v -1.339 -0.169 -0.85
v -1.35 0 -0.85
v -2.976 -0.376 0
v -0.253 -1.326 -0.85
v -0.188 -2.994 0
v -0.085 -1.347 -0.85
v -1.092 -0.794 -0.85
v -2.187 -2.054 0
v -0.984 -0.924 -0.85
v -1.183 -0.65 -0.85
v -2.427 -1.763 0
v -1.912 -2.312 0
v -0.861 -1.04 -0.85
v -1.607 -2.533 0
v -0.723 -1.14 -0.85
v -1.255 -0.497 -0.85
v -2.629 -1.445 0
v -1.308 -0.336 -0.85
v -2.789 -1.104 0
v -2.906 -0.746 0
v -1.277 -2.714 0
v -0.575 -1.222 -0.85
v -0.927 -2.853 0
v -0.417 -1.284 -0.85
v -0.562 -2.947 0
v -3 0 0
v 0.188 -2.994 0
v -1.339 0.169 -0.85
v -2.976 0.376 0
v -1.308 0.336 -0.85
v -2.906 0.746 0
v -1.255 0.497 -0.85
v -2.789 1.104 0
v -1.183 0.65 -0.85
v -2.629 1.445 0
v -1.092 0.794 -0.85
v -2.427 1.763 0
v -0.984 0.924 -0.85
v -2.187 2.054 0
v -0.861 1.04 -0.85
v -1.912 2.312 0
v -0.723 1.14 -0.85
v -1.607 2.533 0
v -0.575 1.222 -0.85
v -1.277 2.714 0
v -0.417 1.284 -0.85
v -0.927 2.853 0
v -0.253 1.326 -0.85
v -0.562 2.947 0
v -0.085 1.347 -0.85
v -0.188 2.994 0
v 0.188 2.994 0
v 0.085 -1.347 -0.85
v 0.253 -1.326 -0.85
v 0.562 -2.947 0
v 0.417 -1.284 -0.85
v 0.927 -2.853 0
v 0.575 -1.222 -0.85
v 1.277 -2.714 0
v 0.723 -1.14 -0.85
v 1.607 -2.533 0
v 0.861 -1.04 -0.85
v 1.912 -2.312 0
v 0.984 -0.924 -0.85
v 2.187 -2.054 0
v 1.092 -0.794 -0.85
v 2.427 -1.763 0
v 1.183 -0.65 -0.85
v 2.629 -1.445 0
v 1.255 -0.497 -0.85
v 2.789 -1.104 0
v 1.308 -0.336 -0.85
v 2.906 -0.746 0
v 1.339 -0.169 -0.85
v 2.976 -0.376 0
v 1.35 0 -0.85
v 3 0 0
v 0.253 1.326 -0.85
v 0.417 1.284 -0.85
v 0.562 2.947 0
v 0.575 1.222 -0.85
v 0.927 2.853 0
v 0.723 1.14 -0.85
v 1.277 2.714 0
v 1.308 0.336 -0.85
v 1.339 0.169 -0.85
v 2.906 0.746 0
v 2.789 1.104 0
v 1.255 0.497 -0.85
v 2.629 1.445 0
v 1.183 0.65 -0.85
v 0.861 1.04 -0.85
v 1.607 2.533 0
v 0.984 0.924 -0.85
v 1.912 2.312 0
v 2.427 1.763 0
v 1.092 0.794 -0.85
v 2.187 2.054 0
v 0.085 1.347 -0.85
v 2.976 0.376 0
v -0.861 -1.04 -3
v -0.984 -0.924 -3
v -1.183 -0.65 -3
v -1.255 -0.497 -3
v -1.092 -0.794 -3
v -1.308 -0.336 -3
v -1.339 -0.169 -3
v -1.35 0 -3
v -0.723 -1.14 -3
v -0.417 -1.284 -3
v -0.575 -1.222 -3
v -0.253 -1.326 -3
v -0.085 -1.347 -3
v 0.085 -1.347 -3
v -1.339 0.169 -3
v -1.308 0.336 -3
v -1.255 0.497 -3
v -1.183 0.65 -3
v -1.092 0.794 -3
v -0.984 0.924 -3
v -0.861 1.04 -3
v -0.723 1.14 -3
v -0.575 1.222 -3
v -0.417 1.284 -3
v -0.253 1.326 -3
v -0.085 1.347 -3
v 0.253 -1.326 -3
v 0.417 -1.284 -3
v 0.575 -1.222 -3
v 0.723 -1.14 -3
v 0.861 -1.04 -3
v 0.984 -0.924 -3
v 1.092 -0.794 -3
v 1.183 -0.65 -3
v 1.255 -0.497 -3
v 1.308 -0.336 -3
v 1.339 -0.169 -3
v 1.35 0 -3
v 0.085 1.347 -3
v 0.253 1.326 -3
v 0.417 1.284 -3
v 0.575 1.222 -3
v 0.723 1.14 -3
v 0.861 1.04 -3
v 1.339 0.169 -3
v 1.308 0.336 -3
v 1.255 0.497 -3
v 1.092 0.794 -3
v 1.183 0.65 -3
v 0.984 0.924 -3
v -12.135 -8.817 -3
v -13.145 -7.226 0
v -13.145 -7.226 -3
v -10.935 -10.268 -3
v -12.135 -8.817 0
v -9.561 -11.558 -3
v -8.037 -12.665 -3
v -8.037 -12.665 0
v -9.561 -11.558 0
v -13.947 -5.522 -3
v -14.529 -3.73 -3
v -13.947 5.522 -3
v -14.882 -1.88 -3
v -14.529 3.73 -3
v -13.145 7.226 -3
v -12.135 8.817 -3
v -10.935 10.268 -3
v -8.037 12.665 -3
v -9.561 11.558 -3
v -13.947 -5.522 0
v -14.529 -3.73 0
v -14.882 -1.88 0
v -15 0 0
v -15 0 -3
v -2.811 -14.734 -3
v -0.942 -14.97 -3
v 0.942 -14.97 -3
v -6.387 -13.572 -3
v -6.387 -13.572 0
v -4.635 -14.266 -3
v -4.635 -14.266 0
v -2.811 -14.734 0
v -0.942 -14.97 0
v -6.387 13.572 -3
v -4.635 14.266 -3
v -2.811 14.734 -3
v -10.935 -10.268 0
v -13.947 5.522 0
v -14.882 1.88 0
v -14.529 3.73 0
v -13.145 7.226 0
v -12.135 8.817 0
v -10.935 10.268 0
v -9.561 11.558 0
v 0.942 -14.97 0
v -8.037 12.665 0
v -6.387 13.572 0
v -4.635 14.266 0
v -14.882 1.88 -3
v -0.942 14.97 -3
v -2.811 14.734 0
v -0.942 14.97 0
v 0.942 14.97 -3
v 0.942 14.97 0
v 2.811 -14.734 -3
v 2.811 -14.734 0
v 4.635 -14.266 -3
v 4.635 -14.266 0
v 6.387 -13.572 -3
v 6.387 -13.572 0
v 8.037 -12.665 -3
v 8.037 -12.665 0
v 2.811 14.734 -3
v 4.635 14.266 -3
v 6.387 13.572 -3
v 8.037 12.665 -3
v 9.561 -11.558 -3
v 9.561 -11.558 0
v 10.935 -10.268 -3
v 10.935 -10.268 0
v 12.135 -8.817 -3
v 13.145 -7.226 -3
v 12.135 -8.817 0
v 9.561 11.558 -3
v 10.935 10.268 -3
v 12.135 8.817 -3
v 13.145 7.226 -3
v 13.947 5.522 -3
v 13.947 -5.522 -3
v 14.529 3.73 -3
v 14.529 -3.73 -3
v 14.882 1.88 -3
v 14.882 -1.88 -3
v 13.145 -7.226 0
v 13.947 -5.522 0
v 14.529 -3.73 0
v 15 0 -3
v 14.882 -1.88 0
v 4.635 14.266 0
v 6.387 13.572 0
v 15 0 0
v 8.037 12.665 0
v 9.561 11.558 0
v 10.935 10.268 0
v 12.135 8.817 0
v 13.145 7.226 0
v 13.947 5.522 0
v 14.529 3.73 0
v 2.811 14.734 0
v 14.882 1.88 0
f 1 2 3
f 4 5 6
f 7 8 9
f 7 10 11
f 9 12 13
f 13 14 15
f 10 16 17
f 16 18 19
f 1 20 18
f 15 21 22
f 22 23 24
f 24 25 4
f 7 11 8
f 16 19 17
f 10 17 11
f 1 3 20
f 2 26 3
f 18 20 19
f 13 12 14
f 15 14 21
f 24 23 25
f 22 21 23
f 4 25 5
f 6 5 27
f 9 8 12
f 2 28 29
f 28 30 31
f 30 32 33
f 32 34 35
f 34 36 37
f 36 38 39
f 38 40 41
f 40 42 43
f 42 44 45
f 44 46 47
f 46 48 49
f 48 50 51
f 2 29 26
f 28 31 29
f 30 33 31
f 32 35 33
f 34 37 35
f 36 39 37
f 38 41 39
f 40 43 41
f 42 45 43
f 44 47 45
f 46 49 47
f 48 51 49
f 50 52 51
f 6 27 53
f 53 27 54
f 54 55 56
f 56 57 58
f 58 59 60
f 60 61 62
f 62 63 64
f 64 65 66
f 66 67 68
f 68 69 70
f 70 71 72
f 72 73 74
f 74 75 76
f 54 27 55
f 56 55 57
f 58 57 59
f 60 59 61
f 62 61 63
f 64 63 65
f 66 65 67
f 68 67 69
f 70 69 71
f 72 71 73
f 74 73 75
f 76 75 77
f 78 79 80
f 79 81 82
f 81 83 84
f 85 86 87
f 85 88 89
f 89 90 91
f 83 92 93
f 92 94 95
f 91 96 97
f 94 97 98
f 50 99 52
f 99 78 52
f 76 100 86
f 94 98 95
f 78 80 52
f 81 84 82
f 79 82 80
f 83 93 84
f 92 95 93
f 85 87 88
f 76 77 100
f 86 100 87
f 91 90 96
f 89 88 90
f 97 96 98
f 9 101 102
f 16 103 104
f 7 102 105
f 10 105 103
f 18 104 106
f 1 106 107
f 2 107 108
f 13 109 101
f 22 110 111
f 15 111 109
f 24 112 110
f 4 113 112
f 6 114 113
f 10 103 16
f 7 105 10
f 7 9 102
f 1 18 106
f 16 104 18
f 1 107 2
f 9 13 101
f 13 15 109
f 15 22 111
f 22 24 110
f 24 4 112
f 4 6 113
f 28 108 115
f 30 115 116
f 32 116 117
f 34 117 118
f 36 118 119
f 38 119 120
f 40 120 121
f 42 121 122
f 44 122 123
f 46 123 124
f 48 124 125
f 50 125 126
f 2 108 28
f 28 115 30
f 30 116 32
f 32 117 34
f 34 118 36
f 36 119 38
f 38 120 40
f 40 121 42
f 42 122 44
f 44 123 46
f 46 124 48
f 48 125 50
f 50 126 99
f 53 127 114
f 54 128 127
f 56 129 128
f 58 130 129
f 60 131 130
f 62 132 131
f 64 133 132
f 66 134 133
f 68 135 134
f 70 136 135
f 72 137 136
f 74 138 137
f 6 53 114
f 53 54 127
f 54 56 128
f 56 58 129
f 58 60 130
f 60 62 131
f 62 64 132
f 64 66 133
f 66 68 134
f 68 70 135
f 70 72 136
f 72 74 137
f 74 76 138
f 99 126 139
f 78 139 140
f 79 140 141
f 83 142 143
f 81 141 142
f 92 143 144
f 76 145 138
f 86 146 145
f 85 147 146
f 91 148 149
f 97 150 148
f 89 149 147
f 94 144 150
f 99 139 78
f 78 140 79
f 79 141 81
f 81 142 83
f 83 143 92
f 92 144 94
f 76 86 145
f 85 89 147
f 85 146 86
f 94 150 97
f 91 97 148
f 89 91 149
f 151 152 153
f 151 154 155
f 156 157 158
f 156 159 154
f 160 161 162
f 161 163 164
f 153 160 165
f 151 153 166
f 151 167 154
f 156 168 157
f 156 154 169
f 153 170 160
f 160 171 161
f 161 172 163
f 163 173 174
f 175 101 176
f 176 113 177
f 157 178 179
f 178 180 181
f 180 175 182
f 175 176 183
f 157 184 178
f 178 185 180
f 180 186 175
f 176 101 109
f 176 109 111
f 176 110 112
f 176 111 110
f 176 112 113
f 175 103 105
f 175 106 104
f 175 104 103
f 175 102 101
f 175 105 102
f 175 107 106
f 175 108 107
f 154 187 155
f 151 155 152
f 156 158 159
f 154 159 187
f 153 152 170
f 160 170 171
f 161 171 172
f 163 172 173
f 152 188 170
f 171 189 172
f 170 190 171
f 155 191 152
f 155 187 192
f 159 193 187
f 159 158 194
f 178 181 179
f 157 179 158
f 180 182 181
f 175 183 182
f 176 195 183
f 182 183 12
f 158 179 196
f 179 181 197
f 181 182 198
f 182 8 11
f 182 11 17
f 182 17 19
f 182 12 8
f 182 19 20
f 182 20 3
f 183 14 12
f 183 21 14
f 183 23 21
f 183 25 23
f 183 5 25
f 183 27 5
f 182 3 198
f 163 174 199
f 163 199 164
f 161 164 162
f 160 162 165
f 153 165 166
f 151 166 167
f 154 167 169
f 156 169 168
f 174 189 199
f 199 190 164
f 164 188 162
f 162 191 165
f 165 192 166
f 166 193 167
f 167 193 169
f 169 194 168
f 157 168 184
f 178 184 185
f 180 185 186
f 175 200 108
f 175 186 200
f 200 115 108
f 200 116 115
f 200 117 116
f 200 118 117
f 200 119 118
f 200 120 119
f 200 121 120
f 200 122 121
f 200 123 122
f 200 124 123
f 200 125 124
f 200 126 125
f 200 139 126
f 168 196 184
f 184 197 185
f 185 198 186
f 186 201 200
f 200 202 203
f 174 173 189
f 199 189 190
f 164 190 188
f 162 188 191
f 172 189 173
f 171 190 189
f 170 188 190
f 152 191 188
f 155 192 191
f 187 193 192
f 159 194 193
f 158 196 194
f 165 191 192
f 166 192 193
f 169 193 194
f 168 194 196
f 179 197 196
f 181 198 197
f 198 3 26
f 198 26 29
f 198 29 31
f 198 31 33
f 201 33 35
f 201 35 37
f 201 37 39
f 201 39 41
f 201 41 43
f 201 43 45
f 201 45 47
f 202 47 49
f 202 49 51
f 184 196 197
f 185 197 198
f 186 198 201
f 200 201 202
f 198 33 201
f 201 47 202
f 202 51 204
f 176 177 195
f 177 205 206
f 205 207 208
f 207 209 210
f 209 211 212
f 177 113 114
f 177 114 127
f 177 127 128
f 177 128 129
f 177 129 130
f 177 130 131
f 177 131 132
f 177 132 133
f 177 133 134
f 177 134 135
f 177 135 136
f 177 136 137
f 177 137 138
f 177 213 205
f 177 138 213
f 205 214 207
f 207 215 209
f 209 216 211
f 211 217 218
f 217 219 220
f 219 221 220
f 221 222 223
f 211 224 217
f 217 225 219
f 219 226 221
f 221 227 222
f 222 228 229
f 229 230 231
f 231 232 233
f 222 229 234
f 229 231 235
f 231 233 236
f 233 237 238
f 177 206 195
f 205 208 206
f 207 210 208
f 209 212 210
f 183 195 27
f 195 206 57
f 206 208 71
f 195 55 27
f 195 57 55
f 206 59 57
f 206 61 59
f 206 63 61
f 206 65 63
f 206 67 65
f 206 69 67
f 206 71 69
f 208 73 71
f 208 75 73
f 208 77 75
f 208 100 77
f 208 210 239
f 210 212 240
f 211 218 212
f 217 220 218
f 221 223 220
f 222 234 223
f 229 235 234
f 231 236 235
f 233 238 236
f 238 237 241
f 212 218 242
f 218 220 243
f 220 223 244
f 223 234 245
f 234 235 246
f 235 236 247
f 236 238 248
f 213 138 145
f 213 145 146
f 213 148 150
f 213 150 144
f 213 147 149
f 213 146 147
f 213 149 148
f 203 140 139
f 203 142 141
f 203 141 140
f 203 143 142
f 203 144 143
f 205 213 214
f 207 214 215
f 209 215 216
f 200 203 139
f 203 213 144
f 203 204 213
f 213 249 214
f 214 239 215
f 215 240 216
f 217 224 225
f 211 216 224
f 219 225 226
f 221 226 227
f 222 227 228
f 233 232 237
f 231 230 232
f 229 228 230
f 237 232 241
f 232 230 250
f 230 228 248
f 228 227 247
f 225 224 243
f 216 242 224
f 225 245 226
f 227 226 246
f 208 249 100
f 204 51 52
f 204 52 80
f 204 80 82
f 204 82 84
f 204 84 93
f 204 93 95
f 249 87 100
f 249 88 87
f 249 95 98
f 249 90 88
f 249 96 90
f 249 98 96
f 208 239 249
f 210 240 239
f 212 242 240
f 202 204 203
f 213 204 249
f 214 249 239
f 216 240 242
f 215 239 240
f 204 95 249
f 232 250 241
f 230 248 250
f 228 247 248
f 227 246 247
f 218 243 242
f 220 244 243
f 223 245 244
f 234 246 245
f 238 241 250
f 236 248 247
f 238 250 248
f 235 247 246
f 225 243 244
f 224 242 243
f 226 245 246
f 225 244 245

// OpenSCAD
$fn = 50;


difference() {
	union() {
		translate(v = [0, 0, -3.0000000000]) {
			cylinder(h = 3, r = 15.0000000000);
		}
	}
	union() {
		translate(v = [0, 0, 0]) {
			rotate(a = [0, 0, 0]) {
				difference() {
					union() {
						translate(v = [0, 0, -6.0000000000]) {
							cylinder(h = 6, r = 1.0000000000);
						}
						translate(v = [0, 0, -0.8500000000]) {
							cylinder(h = 0.8500000000, r1 = 1.3500000000, r2 = 3.0000000000);
						}
						translate(v = [0, 0, -6.0000000000]) {
							cylinder(h = 6, r = 1.3500000000);
						}
						translate(v = [0, 0, -6.0000000000]) {
							cylinder(h = 6, r = 1.0000000000);
						}
					}
					union();
				}
			}
		}
	}
}
